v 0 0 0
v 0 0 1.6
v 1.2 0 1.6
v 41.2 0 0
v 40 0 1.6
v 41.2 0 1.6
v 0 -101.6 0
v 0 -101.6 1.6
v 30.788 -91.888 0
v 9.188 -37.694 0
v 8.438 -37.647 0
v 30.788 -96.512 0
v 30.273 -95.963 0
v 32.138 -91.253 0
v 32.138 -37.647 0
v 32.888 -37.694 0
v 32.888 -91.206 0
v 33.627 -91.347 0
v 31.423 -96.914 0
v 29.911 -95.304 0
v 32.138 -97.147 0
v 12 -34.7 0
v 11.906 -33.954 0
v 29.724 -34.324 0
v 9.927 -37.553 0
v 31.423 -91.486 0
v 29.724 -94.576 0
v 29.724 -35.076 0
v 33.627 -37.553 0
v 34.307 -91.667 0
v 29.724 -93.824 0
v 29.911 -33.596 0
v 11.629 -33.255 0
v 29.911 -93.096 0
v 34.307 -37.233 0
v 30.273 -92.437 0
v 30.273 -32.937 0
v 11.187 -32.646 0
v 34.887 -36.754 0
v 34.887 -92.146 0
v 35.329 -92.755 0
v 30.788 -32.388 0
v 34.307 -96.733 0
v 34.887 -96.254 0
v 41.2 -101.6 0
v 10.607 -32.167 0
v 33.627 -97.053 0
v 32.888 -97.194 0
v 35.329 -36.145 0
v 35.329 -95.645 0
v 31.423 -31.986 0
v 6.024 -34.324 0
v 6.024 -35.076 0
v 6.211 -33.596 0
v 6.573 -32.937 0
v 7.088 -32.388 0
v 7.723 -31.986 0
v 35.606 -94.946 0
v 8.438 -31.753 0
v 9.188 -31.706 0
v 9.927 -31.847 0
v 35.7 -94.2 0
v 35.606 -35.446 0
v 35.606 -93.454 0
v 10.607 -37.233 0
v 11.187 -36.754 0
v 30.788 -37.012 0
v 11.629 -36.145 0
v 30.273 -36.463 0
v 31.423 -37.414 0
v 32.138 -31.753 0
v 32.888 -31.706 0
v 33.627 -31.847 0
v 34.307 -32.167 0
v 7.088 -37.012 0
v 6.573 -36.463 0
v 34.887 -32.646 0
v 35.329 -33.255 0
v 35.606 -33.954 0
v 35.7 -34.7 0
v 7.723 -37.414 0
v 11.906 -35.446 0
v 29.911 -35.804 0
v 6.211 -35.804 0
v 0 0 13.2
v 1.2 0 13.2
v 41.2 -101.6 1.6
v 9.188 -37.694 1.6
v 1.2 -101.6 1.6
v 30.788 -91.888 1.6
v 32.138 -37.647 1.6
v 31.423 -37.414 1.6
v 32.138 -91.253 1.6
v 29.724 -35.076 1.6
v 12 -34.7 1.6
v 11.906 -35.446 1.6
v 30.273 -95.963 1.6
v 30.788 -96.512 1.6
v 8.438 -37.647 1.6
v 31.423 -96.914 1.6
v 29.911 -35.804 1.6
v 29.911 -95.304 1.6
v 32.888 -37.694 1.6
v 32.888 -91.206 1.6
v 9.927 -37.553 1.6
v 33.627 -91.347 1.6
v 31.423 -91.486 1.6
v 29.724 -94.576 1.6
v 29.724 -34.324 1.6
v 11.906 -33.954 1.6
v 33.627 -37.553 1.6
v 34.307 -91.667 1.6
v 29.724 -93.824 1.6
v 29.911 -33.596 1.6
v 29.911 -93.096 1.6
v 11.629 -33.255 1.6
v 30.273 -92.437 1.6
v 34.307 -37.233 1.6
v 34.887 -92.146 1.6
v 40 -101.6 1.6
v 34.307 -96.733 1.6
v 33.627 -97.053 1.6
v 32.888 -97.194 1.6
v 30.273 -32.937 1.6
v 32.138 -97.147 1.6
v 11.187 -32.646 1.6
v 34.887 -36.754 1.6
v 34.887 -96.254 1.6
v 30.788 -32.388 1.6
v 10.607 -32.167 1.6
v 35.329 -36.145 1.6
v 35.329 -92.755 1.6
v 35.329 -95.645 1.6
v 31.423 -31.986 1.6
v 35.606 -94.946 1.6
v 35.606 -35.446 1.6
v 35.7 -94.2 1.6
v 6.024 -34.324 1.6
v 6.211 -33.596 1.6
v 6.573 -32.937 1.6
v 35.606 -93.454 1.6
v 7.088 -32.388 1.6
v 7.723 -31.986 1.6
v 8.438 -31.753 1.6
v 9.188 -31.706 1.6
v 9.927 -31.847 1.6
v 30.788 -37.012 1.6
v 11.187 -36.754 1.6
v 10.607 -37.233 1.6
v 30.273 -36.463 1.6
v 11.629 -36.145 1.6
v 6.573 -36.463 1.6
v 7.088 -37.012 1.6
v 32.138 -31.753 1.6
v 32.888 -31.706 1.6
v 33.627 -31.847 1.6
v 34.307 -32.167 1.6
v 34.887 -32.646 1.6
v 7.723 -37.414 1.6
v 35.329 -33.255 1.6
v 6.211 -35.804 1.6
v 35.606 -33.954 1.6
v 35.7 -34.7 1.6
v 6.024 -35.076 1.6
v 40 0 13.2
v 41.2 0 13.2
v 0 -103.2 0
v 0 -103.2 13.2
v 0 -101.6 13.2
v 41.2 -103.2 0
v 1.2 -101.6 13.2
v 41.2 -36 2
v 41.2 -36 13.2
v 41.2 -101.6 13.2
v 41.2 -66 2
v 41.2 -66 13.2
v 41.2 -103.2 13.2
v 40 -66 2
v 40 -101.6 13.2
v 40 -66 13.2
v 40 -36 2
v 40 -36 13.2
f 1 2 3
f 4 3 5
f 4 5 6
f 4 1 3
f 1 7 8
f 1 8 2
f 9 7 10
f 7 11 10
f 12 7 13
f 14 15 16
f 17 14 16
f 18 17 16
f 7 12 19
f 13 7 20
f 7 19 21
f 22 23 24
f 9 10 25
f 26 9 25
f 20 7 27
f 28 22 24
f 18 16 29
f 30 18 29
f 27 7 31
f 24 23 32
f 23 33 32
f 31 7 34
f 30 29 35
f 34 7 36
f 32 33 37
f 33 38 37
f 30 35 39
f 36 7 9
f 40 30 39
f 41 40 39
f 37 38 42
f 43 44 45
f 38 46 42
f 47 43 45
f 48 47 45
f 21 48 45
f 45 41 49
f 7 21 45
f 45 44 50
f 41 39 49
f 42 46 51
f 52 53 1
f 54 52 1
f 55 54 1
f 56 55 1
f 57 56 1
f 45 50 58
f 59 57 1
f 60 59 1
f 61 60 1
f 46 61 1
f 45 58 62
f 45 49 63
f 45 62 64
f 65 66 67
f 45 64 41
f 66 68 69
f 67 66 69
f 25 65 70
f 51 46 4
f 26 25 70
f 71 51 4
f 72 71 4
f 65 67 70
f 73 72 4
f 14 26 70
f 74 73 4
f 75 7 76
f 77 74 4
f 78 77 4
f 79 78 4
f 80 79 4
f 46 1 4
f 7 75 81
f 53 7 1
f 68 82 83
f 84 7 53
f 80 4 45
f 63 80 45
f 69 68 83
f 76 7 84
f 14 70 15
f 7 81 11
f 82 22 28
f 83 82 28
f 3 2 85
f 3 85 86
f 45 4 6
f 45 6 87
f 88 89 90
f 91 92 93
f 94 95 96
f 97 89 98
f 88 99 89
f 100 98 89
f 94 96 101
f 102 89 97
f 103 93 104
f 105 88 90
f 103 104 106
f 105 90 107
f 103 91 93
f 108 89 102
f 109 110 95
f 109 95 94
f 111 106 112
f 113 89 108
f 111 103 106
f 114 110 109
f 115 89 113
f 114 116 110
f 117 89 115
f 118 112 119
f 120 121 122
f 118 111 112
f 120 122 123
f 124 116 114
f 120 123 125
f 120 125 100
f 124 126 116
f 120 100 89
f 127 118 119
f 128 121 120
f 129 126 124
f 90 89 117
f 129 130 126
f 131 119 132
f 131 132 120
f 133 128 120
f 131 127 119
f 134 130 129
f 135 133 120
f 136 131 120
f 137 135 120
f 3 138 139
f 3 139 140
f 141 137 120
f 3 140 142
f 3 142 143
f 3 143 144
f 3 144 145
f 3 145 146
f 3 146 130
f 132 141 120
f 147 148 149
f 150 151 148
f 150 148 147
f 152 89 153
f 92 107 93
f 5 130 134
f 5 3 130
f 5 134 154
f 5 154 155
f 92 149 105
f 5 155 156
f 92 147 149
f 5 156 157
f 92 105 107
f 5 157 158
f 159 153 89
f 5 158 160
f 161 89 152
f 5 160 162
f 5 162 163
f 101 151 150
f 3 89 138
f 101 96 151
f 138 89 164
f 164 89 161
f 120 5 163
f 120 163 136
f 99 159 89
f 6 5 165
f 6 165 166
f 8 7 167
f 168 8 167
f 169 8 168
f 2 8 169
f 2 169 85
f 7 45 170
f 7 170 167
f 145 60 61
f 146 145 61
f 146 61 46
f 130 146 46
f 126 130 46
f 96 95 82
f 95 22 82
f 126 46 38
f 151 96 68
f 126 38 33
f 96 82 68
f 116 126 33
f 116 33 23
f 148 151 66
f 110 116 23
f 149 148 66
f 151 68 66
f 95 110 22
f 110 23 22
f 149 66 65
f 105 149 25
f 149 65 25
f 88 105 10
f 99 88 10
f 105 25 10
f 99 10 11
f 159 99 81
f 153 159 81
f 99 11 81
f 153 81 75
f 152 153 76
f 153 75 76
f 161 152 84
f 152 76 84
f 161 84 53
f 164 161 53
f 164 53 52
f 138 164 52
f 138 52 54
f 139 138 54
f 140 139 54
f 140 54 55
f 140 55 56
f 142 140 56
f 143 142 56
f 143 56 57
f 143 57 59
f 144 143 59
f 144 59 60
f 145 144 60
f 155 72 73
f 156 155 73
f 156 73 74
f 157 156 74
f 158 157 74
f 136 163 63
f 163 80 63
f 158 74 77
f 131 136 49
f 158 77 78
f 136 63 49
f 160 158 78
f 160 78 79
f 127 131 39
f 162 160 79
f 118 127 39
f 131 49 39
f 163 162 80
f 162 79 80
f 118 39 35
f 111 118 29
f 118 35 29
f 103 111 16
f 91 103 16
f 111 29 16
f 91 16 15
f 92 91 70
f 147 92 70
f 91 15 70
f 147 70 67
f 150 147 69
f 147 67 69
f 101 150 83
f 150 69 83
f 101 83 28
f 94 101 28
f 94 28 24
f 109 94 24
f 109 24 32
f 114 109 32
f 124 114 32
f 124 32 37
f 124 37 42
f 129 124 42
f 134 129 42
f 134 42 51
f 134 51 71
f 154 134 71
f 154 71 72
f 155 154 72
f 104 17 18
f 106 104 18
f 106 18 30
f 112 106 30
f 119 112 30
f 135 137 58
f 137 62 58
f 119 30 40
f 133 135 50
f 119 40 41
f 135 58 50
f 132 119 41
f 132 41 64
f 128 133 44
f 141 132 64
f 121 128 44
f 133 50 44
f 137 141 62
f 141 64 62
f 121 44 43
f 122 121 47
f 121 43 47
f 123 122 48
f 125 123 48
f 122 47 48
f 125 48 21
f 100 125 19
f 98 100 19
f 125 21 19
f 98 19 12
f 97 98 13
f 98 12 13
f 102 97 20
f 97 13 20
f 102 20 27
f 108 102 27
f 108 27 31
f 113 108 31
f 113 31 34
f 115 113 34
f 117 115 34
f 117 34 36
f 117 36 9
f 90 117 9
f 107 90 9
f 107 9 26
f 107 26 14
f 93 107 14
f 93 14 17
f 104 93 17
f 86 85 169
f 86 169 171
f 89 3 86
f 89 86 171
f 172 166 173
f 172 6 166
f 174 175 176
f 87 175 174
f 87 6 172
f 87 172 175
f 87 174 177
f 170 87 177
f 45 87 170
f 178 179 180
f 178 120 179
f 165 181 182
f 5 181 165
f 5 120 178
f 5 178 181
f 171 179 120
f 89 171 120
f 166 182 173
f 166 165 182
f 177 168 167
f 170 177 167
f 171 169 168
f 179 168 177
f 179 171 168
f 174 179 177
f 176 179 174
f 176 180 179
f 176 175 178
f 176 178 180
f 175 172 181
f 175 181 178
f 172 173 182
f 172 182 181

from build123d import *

# Parameters (mm, degrees)
SKETCH_W        = 41.2
SKETCH_H        = 101.6
PAD_DEPTH       = 1.6
SKETCH001_W     = 1.2
SKETCH001_H     = 101.6
PAD001_DEPTH    = 11.6
SKETCH002_W     = 41.2
SKETCH002_H     = 13.2
PAD002_DEPTH    = 1.6
SKETCH003_W     = 30
SKETCH003_H     = 11.2
POCKET_DEPTH    = 1.2
SKETCH004_R     = 3
POCKET001_DEPTH = 1.6


with BuildPart() as part:
    # Sketch → Pad (new body)
    with BuildSketch(Plane.XY):
        with Locations((20.6, -50.8)):
            Rectangle(SKETCH_W, SKETCH_H)
    extrude(amount=PAD_DEPTH)

    # Sketch001 → Pad001 (new body)
    with BuildSketch(Plane.XY.offset(1.6)):
        with Locations((0.6, -50.8)):
            Rectangle(SKETCH001_W, SKETCH001_H)
        with Locations((40.6, -50.8)):
            Rectangle(SKETCH001_W, SKETCH001_H)
    extrude(amount=PAD001_DEPTH)

    # Sketch002 → Pad002 (new body)
    with BuildSketch(Plane.XZ.offset(101.6)):
        with Locations((20.6, 6.6)):
            Rectangle(SKETCH002_W, SKETCH002_H)
    extrude(amount=PAD002_DEPTH)

    # Sketch003 → Pocket (cut)
    with BuildSketch(Plane.YZ.offset(41.2)):
        with Locations((-51, 7.6)):
            Rectangle(SKETCH003_W, SKETCH003_H)
    extrude(amount=-POCKET_DEPTH, mode=Mode.SUBTRACT)

    # Sketch004 → Pocket001 (cut)
    with BuildSketch(Plane(origin=(0, 0, 0), x_dir=(1, 0, 0), z_dir=(0, 0, -1))):
        with Locations((32.7, 94.2)):
            Circle(SKETCH004_R)
        with Locations((9, 34.7)):
            Circle(SKETCH004_R)
        with Locations((32.7, 34.7)):
            Circle(SKETCH004_R)
    extrude(amount=-POCKET001_DEPTH, mode=Mode.SUBTRACT)


solid = part.part
